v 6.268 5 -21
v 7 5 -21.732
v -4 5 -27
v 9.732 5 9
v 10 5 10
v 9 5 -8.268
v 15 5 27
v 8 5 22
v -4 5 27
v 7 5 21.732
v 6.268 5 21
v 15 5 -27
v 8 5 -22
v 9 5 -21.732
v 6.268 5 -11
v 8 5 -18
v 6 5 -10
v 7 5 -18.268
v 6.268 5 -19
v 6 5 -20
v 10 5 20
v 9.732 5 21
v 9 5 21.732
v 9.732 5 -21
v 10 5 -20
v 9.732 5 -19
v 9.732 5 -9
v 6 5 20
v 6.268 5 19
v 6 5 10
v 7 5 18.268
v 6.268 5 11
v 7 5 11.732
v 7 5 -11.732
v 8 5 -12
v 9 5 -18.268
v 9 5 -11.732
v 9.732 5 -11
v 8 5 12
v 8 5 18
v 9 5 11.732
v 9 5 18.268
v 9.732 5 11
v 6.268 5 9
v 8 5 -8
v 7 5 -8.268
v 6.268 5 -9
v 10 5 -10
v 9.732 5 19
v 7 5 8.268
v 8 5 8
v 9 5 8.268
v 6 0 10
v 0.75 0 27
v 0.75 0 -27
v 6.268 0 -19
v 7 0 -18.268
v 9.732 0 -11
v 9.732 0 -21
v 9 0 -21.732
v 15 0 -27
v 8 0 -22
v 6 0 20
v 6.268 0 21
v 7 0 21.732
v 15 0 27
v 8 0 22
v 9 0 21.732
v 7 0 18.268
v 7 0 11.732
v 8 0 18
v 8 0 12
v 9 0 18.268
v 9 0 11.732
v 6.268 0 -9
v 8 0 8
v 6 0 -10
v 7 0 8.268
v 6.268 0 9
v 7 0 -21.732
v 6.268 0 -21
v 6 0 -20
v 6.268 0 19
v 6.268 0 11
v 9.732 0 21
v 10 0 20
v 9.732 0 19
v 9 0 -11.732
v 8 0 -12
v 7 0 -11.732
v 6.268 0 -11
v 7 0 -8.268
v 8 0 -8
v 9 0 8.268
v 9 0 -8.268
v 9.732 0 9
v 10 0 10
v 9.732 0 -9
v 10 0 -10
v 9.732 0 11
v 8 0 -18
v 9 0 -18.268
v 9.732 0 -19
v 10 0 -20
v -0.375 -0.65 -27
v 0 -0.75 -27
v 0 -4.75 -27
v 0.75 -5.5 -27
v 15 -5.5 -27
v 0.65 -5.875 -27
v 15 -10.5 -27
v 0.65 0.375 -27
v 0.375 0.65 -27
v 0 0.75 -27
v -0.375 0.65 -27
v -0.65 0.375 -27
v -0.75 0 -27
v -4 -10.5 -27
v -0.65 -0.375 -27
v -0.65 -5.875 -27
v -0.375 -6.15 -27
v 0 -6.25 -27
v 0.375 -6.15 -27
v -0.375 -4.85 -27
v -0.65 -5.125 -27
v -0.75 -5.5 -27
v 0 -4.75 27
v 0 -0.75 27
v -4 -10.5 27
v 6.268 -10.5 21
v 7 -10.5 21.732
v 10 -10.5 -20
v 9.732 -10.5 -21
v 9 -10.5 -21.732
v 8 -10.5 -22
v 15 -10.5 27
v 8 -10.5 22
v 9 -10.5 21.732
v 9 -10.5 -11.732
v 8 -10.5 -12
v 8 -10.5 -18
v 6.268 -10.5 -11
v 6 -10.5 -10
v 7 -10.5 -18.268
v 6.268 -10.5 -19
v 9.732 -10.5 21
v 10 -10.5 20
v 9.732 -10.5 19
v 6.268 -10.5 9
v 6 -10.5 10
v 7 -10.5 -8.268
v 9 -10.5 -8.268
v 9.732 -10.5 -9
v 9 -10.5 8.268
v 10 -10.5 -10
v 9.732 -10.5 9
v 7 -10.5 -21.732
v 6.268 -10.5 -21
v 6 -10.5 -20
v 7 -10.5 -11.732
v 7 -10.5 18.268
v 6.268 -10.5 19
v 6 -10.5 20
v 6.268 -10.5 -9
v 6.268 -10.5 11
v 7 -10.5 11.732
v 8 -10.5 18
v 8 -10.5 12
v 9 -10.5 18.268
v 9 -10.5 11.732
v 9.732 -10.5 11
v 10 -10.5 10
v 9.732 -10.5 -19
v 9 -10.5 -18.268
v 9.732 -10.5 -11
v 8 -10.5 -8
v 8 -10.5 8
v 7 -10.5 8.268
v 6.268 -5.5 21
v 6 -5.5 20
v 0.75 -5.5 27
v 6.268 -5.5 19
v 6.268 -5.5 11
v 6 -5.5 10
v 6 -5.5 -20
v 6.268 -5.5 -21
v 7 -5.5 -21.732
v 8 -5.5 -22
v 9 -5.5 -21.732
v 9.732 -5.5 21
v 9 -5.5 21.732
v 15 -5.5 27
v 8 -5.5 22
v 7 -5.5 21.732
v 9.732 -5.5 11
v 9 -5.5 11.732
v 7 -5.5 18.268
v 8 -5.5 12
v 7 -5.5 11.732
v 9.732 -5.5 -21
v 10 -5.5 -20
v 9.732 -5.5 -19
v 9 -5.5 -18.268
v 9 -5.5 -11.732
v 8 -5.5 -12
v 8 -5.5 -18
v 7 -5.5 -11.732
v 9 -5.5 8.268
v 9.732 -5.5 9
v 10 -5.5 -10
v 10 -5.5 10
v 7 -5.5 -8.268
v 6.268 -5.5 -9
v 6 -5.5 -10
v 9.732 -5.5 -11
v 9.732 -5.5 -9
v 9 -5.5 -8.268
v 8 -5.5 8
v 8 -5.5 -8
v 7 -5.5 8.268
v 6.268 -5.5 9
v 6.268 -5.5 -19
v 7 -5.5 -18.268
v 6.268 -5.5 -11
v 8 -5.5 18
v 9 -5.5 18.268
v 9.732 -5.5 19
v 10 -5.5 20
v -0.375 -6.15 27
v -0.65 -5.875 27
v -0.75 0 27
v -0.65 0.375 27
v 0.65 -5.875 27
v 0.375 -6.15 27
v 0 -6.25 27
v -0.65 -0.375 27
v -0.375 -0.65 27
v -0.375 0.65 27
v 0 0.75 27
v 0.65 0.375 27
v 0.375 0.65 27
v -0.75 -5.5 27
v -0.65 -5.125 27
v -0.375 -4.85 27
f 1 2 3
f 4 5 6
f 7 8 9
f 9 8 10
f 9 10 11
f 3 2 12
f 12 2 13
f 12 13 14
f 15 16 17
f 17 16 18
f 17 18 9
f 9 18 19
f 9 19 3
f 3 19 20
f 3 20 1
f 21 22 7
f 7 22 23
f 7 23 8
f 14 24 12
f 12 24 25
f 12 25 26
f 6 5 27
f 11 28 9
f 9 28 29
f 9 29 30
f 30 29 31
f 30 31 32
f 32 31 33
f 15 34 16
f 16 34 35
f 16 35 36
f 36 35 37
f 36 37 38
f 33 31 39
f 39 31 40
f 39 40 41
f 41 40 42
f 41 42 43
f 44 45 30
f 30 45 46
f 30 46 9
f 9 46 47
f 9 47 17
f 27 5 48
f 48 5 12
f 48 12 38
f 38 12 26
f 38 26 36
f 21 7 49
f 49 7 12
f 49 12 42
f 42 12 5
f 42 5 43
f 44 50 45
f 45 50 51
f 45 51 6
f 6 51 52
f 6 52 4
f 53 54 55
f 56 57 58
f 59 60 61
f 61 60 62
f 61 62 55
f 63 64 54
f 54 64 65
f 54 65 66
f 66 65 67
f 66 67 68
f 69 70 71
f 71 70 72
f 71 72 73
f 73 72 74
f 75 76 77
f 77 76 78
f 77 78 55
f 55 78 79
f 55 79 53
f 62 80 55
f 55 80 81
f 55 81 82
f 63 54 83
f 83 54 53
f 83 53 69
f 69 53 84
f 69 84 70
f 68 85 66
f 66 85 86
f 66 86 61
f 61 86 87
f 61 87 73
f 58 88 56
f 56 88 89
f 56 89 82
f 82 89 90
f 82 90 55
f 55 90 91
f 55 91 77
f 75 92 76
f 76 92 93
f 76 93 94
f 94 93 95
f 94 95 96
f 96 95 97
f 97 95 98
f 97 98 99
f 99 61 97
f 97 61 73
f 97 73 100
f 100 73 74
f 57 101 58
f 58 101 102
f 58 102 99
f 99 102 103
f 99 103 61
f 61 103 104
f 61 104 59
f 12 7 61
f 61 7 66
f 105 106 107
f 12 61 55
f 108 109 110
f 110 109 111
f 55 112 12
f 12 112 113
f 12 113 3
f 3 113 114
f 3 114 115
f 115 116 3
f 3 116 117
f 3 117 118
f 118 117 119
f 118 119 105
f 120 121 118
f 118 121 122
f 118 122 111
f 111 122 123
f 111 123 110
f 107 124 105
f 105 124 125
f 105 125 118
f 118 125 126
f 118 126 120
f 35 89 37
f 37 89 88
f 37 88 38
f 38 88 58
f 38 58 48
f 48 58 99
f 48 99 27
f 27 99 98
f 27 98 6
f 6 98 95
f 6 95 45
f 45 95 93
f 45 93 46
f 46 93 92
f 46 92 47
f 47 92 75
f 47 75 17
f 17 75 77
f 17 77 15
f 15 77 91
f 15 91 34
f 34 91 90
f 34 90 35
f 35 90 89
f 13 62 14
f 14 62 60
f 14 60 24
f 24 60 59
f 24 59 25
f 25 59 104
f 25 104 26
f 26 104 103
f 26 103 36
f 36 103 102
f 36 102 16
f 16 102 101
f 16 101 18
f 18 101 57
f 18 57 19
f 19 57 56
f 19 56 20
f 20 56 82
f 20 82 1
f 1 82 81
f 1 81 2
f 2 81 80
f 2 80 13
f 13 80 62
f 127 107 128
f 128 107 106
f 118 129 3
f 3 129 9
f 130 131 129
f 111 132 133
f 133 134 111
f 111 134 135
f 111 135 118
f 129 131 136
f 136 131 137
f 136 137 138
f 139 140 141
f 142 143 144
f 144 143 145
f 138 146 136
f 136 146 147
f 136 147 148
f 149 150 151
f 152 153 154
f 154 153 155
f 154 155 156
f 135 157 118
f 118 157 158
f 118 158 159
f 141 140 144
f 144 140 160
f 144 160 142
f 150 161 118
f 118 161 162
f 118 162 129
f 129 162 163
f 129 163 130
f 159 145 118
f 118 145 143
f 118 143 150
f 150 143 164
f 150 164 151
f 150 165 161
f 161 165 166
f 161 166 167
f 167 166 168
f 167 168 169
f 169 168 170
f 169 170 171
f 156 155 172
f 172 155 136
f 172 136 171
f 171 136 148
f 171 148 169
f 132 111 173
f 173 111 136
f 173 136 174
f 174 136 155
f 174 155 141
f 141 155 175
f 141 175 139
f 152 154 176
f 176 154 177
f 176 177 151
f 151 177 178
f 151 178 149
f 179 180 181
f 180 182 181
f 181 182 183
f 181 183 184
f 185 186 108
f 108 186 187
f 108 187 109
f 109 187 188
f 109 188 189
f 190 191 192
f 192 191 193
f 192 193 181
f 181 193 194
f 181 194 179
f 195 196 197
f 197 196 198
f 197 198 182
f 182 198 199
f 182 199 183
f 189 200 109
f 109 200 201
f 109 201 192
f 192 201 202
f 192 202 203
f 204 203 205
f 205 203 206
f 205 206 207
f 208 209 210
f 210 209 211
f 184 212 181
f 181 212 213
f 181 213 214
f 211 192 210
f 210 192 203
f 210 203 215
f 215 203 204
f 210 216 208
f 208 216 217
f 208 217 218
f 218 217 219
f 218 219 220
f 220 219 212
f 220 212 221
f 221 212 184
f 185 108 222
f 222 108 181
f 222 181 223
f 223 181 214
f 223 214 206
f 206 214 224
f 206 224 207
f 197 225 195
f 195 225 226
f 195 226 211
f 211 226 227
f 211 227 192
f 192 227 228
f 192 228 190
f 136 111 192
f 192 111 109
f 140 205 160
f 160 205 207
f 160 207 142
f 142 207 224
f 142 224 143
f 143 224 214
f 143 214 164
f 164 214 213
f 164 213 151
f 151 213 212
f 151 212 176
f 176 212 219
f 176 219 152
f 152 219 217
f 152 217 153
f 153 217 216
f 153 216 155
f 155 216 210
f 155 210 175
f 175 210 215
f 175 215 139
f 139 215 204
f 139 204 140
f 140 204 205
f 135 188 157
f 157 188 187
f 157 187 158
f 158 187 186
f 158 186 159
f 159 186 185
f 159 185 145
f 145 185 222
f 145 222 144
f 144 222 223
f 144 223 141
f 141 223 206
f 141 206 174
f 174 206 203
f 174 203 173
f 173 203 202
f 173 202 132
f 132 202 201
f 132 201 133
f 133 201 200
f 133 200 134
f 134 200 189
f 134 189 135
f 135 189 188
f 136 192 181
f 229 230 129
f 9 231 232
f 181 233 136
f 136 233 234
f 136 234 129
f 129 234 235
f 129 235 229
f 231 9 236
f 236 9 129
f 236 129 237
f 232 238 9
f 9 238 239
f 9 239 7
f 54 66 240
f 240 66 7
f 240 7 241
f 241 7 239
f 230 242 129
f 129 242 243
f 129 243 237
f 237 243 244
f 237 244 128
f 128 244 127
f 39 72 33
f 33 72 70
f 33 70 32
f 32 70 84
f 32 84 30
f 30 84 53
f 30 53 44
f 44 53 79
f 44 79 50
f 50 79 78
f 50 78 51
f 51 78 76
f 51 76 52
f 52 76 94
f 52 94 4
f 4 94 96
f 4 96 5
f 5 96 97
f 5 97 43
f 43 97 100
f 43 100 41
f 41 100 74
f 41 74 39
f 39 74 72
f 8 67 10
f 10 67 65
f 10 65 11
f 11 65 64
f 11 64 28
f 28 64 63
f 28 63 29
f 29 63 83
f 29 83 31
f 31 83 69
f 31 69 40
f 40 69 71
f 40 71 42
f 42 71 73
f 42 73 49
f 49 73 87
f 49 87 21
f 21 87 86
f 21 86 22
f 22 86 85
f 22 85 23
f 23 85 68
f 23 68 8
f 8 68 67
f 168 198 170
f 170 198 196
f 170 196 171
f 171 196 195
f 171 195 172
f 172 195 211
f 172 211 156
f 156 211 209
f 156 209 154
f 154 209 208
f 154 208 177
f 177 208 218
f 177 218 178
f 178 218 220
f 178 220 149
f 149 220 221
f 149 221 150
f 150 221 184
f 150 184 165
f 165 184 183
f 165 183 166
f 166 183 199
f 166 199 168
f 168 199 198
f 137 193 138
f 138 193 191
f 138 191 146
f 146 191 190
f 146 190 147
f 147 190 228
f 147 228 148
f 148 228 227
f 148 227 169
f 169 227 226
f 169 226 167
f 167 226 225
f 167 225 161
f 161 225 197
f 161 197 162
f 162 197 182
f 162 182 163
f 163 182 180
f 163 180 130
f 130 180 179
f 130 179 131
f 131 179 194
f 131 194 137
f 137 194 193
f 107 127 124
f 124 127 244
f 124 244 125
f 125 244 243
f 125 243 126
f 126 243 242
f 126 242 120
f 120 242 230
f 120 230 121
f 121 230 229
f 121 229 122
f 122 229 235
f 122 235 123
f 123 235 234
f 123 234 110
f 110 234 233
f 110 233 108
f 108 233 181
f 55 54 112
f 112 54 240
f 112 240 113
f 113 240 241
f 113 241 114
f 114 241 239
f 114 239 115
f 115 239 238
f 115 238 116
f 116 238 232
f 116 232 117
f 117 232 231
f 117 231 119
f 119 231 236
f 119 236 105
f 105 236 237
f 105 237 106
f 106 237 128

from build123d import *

# Parameters (mm, degrees)
SKETCH1_W           = 15
SKETCH1_H           = 27
SKETCH1_R           = 2
BOSS_EXTRUDE1_DEPTH = 5
SKETCH2_W           = 4
SKETCH2_H           = 10.5
BOSS_EXTRUDE2_DEPTH = 27
SKETCH4_R           = 0.75
CUT_EXTRUDE1_DEPTH  = 54


with BuildPart() as part:
    # Sketch1 → Boss-Extrude1 (new body)
    with BuildSketch(Plane(origin=(0, 0, 0), x_dir=(1, 0, 0), z_dir=(0, 1, 0))):
        with Locations((7.5, 13.5)):
            Rectangle(SKETCH1_W, SKETCH1_H)
        with Locations((8, 10)):
            Circle(SKETCH1_R, mode=Mode.SUBTRACT)
        with Locations((8, 20)):
            Circle(SKETCH1_R, mode=Mode.SUBTRACT)
    extrude(amount=BOSS_EXTRUDE1_DEPTH)

    # Sketch2 → Boss-Extrude2 (add)
    with BuildSketch(Plane.XY):
        with Locations((-2, -0.25)):
            Rectangle(SKETCH2_W, SKETCH2_H)
    extrude(amount=-BOSS_EXTRUDE2_DEPTH)

    # Mirror3: part across plane


with BuildPart() as part_1:
    add(part.part)
    add(part.part.mirror(Plane(origin=(0, -2.75, 0), x_dir=(0, 0, 1), z_dir=(0, -1, 0))))

    # Mirror4: part across plane


with BuildPart() as part_2:
    add(part_1.part)
    add(part_1.part.mirror(Plane(origin=(0, 5, 0), x_dir=(1, 0, 0), z_dir=(0, 0, -1))))

    # Sketch4 → Cut-Extrude1 (cut)
    with BuildSketch(Plane.XY.offset(27)):
        Circle(SKETCH4_R)
        with Locations((0, -5.5)):
            Circle(SKETCH4_R)
    extrude(amount=-CUT_EXTRUDE1_DEPTH, mode=Mode.SUBTRACT)


solid = part_2.part
